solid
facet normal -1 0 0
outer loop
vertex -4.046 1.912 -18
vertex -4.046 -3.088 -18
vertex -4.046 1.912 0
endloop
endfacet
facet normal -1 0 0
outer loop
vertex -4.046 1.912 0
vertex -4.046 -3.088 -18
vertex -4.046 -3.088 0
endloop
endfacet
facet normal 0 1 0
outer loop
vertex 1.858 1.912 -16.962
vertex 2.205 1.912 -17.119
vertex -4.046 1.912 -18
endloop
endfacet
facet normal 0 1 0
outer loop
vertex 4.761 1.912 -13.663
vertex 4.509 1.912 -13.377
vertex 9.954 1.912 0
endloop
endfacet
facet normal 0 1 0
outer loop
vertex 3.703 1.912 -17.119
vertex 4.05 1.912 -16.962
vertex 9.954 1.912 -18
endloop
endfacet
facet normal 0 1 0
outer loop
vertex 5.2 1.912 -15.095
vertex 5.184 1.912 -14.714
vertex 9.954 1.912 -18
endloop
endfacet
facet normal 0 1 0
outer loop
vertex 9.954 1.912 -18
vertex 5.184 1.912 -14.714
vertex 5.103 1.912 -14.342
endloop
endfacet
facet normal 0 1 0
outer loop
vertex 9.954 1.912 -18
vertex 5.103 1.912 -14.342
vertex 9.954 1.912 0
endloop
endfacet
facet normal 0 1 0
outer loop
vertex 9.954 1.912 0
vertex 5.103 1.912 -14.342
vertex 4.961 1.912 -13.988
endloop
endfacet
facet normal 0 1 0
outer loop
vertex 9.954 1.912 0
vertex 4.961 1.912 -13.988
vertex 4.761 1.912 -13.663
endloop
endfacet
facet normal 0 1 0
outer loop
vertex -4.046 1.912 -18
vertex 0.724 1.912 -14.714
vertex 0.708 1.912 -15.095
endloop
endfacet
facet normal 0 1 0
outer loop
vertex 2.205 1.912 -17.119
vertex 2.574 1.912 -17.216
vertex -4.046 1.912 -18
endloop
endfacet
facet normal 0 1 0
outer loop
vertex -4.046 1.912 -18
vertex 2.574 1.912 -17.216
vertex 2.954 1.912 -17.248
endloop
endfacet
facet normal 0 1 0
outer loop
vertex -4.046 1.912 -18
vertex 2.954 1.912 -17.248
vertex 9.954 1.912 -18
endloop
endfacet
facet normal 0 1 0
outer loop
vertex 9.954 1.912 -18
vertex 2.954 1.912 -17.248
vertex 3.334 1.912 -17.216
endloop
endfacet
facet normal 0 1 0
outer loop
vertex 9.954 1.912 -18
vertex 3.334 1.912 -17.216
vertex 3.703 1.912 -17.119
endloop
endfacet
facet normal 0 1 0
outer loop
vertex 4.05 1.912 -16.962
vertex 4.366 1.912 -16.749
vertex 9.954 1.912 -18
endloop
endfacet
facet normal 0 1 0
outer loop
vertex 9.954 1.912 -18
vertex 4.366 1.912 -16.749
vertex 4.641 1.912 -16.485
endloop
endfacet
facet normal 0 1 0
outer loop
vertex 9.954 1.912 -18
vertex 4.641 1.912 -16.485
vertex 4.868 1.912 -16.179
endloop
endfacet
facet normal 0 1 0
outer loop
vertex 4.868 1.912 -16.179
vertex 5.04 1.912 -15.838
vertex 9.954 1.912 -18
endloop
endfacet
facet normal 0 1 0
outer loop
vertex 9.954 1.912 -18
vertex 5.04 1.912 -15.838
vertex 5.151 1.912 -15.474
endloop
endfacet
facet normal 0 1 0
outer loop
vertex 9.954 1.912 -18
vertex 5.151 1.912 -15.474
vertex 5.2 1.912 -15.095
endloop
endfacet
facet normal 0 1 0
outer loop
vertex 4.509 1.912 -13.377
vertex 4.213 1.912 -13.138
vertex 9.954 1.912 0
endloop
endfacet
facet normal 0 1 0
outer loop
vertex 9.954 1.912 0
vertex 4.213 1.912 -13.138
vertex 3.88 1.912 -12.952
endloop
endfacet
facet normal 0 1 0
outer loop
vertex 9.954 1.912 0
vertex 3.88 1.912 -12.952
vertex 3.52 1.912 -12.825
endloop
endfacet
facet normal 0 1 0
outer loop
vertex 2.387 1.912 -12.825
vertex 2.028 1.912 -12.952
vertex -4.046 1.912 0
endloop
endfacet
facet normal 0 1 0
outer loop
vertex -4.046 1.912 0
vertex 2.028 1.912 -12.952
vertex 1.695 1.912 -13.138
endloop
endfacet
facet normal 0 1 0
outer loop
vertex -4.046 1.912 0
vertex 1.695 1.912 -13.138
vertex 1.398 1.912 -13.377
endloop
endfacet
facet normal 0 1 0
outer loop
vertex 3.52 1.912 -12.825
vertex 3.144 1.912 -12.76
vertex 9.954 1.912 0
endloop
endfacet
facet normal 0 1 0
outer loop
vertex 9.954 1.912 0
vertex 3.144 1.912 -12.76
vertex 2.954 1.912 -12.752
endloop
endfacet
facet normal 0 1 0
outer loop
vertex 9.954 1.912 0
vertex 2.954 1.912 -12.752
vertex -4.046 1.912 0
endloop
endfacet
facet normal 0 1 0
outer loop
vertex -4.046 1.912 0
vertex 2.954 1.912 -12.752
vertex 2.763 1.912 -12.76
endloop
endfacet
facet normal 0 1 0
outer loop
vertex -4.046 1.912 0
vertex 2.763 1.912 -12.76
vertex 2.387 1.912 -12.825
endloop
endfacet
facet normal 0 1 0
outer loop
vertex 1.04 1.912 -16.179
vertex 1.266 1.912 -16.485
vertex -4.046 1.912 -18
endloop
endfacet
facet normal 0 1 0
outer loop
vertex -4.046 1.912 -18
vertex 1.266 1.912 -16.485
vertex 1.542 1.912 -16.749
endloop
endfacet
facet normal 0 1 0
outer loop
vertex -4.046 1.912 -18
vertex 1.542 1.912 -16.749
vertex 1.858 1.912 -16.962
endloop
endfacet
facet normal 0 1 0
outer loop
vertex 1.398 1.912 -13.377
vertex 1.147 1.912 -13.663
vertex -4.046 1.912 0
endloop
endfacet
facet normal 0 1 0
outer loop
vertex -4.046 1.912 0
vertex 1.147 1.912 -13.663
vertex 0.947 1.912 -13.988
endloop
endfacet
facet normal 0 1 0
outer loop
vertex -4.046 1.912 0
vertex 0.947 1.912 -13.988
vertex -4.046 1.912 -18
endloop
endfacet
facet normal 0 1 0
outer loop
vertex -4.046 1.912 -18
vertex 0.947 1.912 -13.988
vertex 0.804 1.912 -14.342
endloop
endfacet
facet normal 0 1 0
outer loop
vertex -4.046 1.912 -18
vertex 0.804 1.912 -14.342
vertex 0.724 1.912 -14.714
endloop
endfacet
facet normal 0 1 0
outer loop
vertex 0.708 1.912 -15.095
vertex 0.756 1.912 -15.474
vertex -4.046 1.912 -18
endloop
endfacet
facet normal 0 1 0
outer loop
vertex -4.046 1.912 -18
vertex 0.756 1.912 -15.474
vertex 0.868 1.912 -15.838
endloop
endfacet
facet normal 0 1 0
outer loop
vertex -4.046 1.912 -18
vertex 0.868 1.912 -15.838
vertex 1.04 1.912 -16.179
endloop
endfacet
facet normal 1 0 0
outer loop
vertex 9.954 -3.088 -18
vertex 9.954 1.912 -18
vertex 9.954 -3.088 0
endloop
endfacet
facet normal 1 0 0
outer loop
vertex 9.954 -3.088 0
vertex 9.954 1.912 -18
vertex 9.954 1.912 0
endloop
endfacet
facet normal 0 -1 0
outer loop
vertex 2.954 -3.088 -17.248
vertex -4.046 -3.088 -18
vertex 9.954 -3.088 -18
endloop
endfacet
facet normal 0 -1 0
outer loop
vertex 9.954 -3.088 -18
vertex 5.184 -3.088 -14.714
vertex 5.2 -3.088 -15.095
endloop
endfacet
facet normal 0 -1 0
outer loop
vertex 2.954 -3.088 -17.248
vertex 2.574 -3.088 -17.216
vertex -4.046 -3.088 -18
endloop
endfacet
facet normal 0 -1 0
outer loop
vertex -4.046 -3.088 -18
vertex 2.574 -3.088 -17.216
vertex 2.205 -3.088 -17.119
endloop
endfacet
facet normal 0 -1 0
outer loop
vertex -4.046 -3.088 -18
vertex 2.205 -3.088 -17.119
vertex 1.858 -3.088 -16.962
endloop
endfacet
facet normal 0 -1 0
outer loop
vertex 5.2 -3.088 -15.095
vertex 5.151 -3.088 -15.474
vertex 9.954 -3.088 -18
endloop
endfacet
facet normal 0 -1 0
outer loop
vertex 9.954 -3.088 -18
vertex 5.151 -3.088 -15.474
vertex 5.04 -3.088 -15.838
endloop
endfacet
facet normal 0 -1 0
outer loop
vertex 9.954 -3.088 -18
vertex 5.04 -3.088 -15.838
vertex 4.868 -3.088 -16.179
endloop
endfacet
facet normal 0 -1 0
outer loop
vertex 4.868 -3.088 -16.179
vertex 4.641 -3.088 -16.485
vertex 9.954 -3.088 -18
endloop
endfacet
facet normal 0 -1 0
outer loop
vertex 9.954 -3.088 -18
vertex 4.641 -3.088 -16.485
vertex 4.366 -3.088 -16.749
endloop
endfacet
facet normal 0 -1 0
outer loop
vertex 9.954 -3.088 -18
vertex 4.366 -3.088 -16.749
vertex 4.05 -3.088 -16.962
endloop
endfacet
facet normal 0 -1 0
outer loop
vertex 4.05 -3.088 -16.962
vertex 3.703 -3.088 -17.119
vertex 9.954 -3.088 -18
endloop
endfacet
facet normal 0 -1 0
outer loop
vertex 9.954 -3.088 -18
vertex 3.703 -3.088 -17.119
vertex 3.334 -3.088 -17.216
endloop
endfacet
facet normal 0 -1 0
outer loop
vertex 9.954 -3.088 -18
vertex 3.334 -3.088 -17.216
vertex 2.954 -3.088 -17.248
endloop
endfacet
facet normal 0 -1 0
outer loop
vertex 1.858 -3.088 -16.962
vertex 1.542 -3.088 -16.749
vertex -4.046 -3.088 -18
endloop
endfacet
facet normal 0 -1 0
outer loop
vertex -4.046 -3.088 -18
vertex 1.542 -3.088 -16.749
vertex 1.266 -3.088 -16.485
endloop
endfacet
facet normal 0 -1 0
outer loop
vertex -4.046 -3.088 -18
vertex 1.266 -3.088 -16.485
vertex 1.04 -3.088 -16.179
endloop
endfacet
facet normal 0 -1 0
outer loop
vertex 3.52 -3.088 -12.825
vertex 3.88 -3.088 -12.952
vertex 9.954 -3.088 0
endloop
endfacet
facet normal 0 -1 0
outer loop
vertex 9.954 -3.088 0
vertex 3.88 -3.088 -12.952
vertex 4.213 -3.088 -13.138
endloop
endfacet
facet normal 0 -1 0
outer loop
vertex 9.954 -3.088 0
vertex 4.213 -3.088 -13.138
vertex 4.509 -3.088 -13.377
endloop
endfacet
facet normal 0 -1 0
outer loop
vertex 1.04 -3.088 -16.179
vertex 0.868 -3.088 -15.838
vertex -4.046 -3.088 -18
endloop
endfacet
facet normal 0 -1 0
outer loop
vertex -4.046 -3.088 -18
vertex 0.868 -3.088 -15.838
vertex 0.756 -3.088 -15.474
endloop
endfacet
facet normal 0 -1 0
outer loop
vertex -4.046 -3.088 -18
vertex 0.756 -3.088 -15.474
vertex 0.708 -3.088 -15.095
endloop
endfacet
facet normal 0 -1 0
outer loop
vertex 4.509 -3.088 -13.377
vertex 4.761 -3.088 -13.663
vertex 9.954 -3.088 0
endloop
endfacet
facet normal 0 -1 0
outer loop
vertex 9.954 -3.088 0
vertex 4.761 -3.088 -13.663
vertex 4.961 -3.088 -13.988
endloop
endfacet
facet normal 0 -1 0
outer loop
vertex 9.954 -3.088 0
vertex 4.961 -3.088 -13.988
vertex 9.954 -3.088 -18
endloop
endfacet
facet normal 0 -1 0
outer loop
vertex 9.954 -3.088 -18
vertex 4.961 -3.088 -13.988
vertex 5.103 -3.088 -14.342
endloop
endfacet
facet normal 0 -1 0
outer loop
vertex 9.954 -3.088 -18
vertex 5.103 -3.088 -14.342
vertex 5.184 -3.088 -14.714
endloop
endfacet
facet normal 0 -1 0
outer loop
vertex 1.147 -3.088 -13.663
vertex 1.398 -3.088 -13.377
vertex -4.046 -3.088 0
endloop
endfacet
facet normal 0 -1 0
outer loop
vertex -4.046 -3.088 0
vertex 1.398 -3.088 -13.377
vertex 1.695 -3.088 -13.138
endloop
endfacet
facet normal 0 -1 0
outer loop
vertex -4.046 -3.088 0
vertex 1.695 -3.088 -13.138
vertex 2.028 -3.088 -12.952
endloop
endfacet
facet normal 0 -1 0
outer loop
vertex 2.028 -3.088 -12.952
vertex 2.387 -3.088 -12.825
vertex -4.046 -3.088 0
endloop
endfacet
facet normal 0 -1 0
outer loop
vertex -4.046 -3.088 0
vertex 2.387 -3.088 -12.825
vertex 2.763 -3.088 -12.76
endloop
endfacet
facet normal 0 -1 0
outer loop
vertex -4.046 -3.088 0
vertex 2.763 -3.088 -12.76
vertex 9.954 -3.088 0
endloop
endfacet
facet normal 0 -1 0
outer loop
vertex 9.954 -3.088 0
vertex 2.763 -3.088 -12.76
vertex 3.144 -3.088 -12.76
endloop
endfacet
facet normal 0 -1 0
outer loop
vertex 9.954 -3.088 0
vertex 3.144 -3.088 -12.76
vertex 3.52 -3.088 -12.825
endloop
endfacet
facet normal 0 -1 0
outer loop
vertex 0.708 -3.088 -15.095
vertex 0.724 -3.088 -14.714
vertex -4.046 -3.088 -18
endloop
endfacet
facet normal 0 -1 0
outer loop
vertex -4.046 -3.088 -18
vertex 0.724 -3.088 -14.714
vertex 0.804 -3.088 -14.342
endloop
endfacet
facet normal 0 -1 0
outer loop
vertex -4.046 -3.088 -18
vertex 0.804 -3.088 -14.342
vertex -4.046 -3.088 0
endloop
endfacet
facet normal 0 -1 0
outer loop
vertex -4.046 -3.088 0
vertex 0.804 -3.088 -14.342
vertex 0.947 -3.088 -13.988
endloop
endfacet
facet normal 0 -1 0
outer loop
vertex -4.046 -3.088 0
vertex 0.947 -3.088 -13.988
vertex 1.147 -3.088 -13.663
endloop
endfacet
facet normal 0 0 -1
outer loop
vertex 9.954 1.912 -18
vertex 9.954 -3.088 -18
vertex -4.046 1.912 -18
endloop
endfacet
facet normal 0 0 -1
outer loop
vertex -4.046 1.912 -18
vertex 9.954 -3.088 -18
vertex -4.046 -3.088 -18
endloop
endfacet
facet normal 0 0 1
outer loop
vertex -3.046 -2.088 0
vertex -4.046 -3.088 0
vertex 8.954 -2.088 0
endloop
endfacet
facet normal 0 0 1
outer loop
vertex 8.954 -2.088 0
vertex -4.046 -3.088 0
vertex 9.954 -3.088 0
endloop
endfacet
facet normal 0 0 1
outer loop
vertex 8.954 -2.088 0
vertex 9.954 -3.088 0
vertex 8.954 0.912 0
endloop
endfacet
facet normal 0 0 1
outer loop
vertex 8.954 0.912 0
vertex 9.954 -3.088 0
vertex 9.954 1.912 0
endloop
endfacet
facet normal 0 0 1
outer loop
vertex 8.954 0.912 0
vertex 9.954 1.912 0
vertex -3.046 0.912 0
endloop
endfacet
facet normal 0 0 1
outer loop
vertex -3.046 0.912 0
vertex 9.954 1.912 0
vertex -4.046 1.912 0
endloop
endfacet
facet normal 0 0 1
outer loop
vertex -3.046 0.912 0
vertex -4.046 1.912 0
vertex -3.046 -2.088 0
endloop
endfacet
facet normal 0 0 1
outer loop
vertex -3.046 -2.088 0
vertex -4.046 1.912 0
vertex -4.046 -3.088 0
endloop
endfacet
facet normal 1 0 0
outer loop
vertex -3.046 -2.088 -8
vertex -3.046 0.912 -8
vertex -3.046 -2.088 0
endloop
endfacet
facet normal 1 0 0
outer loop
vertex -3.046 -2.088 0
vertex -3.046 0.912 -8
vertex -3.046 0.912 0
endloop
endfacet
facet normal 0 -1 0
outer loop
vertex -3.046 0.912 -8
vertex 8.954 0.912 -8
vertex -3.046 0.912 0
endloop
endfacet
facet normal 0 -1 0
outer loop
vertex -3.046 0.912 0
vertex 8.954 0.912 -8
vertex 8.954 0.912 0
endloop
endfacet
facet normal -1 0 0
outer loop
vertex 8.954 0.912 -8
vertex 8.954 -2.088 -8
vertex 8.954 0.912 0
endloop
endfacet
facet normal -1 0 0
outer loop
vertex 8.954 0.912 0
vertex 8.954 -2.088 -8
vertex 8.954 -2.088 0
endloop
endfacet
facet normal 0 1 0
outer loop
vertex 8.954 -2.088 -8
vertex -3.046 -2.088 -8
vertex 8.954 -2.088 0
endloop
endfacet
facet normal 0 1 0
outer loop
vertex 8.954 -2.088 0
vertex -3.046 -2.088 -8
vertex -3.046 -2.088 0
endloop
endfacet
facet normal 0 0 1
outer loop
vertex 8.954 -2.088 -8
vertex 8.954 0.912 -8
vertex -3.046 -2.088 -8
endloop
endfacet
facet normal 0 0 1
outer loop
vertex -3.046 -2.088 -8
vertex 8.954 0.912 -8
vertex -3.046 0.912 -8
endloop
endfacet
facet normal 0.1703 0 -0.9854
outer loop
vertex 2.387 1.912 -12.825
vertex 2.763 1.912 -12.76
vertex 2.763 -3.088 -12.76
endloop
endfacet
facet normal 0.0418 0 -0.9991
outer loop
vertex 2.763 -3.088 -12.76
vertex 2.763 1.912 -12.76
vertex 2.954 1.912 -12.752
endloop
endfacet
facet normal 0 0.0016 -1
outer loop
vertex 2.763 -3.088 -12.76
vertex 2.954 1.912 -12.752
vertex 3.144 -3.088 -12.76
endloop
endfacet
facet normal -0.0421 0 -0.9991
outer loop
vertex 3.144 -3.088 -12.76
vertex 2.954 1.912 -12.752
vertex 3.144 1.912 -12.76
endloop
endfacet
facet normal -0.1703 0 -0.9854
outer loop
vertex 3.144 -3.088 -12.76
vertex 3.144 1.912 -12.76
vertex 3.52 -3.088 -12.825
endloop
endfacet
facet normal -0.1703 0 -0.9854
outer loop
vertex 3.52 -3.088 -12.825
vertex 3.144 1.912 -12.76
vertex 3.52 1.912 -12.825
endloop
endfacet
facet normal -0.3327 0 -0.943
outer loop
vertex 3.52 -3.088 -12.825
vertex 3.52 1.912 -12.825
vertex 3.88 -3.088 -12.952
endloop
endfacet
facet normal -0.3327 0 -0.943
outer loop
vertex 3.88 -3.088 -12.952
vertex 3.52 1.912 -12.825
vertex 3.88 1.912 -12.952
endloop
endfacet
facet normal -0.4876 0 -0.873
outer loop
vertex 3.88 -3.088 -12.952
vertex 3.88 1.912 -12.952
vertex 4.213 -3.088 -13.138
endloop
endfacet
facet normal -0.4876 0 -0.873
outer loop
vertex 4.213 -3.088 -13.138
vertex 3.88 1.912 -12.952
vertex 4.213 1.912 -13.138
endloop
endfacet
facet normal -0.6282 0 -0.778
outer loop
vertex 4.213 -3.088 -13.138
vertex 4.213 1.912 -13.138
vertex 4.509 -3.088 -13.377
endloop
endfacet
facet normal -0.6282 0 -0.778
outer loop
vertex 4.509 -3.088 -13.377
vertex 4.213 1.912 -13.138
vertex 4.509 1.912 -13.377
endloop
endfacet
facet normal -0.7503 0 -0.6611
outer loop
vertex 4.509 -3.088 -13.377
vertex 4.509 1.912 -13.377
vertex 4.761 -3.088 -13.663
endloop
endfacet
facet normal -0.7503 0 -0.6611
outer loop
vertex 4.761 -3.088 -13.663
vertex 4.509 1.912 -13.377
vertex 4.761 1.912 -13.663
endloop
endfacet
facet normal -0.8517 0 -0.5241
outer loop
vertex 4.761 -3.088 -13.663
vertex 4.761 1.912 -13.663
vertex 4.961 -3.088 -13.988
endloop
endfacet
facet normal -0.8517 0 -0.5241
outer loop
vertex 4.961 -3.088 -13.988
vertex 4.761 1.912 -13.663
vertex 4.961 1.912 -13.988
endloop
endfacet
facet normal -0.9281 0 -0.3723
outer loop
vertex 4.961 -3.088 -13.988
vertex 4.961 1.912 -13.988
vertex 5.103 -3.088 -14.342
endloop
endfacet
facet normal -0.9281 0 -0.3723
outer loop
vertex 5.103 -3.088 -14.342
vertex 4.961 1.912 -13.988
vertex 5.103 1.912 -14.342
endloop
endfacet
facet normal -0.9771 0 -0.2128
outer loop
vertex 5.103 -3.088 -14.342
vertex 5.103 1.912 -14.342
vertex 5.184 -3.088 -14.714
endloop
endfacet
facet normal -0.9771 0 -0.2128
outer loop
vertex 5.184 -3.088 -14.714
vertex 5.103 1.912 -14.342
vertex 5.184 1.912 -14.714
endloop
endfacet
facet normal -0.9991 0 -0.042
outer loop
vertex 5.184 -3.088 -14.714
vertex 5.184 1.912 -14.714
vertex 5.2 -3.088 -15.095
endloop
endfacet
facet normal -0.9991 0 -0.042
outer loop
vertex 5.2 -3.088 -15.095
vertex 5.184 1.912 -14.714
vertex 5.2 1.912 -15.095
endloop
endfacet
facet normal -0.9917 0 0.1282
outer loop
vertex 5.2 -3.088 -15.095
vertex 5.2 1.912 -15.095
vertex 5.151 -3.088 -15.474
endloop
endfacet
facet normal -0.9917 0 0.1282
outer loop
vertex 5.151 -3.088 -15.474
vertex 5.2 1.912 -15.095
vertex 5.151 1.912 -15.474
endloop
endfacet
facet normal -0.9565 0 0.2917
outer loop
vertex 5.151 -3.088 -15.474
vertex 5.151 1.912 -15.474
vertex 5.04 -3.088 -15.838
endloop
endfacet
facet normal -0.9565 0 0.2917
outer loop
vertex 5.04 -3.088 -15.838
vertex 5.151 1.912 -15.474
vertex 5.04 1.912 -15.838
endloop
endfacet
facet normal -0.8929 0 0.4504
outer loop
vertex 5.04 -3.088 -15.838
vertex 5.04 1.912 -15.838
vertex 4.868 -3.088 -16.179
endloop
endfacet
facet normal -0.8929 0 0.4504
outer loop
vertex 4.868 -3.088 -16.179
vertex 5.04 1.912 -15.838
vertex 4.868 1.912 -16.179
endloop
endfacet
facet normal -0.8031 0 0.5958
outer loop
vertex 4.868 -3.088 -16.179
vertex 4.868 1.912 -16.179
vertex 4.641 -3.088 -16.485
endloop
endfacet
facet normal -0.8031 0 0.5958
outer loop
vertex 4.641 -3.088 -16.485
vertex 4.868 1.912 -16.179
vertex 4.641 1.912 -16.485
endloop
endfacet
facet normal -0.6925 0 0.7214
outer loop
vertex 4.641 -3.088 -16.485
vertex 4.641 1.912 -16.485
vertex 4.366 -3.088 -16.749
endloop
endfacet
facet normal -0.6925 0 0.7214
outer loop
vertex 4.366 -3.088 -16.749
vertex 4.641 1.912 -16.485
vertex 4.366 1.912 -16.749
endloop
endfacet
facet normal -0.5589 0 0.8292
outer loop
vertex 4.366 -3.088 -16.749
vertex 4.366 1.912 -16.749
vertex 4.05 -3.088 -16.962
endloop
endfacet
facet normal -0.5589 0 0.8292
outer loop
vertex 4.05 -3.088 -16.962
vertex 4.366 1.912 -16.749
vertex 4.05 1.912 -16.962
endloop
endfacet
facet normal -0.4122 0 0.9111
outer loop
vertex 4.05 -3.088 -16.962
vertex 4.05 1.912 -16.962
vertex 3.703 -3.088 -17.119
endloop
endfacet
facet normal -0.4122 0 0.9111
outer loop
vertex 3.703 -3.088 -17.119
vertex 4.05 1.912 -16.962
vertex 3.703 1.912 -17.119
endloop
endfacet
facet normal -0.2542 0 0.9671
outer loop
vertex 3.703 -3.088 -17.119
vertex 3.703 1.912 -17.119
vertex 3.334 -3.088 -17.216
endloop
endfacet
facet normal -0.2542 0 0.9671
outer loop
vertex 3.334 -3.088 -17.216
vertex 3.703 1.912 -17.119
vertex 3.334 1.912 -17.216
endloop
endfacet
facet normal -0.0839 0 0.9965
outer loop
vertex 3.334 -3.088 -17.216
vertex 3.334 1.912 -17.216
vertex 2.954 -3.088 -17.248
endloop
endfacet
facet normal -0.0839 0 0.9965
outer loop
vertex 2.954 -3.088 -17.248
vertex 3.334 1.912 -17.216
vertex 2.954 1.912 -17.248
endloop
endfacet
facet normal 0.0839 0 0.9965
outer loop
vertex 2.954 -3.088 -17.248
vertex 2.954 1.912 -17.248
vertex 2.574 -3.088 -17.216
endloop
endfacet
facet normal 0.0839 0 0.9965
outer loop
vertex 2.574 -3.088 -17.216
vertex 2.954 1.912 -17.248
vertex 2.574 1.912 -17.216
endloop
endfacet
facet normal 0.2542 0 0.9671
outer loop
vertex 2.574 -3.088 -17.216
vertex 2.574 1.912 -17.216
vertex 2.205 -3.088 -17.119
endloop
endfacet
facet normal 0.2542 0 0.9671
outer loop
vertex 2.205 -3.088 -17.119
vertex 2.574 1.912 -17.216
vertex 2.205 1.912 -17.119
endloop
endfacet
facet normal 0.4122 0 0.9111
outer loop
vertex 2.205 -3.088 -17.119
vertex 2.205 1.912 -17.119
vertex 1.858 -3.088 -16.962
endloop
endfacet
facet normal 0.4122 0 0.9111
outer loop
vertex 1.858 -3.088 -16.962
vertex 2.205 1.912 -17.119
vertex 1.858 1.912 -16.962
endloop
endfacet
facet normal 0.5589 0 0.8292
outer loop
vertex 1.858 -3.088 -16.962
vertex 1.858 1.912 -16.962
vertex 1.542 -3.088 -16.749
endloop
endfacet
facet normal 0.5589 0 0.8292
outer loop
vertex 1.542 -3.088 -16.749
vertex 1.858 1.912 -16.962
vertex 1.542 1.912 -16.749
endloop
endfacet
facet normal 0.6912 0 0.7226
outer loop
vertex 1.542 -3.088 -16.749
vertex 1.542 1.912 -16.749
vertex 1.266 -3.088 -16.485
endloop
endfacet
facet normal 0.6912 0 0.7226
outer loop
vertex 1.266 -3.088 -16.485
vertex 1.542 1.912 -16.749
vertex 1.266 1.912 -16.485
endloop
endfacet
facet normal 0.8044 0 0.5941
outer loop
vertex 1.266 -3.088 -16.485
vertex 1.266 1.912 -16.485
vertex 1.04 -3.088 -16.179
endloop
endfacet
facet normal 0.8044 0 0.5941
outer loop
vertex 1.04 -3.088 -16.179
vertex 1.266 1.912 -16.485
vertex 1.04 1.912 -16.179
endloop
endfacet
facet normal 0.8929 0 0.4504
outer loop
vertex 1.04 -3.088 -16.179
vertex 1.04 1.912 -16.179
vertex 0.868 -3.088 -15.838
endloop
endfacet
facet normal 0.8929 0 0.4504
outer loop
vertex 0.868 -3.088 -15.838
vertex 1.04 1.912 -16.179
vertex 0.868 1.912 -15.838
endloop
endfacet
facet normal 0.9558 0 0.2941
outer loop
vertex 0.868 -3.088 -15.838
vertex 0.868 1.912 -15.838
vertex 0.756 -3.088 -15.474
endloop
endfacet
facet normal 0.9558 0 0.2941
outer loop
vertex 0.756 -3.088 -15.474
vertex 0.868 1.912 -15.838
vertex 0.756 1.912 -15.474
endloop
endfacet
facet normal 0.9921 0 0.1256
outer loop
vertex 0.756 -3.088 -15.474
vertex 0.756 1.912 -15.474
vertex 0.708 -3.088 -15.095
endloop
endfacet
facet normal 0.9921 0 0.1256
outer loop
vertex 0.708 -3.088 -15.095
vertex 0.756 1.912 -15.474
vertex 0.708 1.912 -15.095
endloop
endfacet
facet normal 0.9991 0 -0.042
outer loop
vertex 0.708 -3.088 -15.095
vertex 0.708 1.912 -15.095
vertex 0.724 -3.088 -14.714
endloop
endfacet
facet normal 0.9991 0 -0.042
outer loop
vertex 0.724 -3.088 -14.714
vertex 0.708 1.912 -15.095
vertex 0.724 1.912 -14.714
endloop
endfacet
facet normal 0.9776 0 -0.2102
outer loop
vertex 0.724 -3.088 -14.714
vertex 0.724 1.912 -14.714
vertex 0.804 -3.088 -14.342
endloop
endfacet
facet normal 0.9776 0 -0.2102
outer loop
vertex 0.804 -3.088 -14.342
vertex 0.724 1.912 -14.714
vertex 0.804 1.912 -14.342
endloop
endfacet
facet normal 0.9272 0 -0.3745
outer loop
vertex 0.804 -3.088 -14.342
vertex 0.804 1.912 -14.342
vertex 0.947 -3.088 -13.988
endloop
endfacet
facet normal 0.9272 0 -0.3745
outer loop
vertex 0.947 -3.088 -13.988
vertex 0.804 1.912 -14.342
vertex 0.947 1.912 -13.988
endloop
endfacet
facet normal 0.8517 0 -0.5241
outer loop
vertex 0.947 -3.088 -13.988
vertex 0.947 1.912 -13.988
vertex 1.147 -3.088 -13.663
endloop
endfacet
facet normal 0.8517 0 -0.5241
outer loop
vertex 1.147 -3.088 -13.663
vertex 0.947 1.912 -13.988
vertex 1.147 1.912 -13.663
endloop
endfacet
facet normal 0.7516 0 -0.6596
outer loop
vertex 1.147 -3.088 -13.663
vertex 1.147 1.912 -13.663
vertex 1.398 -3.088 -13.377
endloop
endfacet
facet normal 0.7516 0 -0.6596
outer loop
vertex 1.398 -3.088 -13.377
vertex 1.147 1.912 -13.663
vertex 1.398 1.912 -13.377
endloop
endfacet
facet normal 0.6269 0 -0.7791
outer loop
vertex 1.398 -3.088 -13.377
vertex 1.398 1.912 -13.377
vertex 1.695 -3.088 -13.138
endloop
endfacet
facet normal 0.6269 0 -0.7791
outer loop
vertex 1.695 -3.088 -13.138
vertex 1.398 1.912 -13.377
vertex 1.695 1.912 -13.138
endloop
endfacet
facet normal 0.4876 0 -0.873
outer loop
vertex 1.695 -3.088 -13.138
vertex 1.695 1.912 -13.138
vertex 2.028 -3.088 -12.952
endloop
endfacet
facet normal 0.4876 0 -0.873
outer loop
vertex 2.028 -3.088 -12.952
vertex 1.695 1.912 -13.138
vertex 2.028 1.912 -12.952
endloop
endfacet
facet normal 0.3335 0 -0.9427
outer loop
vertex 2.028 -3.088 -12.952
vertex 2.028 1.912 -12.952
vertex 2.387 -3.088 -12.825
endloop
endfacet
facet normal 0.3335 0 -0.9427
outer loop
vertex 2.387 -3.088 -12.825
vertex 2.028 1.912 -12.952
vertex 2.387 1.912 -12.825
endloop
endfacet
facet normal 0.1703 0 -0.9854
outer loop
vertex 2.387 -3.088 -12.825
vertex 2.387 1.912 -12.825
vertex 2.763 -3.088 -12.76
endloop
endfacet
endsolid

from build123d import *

# Parameters (mm, degrees)
SKETCH1_W                 = 14
SKETCH1_H                 = 5
BOSS_EXTRUDE1_DEPTH       = 18
SKETCH2_W                 = 12
SKETCH2_H                 = 3
CUT_EXTRUDE1_DEPTH        = 8
F_8_CLEARANCE_HOLE1_D     = 4.4958
F_8_CLEARANCE_HOLE1_DEPTH = 17
F_8_CLEARANCE_HOLE1_TIP   = 1.350674586


with BuildPart() as part:
    # Sketch1 → Boss-Extrude1 (new body)
    with BuildSketch(Plane.XY):
        with Locations((2.953810723, -0.588235294)):
            Rectangle(SKETCH1_W, SKETCH1_H)
    extrude(amount=-BOSS_EXTRUDE1_DEPTH)

    # Sketch2 → Cut-Extrude1 (cut)
    with BuildSketch(Plane.XY):
        with Locations((2.953810723, -0.588235294)):
            Rectangle(SKETCH2_W, SKETCH2_H)
    extrude(amount=-CUT_EXTRUDE1_DEPTH, mode=Mode.SUBTRACT)

    # #8 Clearance Hole1
    with Locations(Plane(origin=(2.953810723, -3.088235294, -15), x_dir=(0, 0, -1), z_dir=(0, -1, 0))):
        with Locations((0, 0)):
            Hole(F_8_CLEARANCE_HOLE1_D / 2, depth=F_8_CLEARANCE_HOLE1_DEPTH)
            with Locations((0, 0, -(F_8_CLEARANCE_HOLE1_DEPTH + F_8_CLEARANCE_HOLE1_TIP / 2))):  # 118° drill point
                Cone(0, F_8_CLEARANCE_HOLE1_D / 2, F_8_CLEARANCE_HOLE1_TIP, mode=Mode.SUBTRACT)


solid = part.part
